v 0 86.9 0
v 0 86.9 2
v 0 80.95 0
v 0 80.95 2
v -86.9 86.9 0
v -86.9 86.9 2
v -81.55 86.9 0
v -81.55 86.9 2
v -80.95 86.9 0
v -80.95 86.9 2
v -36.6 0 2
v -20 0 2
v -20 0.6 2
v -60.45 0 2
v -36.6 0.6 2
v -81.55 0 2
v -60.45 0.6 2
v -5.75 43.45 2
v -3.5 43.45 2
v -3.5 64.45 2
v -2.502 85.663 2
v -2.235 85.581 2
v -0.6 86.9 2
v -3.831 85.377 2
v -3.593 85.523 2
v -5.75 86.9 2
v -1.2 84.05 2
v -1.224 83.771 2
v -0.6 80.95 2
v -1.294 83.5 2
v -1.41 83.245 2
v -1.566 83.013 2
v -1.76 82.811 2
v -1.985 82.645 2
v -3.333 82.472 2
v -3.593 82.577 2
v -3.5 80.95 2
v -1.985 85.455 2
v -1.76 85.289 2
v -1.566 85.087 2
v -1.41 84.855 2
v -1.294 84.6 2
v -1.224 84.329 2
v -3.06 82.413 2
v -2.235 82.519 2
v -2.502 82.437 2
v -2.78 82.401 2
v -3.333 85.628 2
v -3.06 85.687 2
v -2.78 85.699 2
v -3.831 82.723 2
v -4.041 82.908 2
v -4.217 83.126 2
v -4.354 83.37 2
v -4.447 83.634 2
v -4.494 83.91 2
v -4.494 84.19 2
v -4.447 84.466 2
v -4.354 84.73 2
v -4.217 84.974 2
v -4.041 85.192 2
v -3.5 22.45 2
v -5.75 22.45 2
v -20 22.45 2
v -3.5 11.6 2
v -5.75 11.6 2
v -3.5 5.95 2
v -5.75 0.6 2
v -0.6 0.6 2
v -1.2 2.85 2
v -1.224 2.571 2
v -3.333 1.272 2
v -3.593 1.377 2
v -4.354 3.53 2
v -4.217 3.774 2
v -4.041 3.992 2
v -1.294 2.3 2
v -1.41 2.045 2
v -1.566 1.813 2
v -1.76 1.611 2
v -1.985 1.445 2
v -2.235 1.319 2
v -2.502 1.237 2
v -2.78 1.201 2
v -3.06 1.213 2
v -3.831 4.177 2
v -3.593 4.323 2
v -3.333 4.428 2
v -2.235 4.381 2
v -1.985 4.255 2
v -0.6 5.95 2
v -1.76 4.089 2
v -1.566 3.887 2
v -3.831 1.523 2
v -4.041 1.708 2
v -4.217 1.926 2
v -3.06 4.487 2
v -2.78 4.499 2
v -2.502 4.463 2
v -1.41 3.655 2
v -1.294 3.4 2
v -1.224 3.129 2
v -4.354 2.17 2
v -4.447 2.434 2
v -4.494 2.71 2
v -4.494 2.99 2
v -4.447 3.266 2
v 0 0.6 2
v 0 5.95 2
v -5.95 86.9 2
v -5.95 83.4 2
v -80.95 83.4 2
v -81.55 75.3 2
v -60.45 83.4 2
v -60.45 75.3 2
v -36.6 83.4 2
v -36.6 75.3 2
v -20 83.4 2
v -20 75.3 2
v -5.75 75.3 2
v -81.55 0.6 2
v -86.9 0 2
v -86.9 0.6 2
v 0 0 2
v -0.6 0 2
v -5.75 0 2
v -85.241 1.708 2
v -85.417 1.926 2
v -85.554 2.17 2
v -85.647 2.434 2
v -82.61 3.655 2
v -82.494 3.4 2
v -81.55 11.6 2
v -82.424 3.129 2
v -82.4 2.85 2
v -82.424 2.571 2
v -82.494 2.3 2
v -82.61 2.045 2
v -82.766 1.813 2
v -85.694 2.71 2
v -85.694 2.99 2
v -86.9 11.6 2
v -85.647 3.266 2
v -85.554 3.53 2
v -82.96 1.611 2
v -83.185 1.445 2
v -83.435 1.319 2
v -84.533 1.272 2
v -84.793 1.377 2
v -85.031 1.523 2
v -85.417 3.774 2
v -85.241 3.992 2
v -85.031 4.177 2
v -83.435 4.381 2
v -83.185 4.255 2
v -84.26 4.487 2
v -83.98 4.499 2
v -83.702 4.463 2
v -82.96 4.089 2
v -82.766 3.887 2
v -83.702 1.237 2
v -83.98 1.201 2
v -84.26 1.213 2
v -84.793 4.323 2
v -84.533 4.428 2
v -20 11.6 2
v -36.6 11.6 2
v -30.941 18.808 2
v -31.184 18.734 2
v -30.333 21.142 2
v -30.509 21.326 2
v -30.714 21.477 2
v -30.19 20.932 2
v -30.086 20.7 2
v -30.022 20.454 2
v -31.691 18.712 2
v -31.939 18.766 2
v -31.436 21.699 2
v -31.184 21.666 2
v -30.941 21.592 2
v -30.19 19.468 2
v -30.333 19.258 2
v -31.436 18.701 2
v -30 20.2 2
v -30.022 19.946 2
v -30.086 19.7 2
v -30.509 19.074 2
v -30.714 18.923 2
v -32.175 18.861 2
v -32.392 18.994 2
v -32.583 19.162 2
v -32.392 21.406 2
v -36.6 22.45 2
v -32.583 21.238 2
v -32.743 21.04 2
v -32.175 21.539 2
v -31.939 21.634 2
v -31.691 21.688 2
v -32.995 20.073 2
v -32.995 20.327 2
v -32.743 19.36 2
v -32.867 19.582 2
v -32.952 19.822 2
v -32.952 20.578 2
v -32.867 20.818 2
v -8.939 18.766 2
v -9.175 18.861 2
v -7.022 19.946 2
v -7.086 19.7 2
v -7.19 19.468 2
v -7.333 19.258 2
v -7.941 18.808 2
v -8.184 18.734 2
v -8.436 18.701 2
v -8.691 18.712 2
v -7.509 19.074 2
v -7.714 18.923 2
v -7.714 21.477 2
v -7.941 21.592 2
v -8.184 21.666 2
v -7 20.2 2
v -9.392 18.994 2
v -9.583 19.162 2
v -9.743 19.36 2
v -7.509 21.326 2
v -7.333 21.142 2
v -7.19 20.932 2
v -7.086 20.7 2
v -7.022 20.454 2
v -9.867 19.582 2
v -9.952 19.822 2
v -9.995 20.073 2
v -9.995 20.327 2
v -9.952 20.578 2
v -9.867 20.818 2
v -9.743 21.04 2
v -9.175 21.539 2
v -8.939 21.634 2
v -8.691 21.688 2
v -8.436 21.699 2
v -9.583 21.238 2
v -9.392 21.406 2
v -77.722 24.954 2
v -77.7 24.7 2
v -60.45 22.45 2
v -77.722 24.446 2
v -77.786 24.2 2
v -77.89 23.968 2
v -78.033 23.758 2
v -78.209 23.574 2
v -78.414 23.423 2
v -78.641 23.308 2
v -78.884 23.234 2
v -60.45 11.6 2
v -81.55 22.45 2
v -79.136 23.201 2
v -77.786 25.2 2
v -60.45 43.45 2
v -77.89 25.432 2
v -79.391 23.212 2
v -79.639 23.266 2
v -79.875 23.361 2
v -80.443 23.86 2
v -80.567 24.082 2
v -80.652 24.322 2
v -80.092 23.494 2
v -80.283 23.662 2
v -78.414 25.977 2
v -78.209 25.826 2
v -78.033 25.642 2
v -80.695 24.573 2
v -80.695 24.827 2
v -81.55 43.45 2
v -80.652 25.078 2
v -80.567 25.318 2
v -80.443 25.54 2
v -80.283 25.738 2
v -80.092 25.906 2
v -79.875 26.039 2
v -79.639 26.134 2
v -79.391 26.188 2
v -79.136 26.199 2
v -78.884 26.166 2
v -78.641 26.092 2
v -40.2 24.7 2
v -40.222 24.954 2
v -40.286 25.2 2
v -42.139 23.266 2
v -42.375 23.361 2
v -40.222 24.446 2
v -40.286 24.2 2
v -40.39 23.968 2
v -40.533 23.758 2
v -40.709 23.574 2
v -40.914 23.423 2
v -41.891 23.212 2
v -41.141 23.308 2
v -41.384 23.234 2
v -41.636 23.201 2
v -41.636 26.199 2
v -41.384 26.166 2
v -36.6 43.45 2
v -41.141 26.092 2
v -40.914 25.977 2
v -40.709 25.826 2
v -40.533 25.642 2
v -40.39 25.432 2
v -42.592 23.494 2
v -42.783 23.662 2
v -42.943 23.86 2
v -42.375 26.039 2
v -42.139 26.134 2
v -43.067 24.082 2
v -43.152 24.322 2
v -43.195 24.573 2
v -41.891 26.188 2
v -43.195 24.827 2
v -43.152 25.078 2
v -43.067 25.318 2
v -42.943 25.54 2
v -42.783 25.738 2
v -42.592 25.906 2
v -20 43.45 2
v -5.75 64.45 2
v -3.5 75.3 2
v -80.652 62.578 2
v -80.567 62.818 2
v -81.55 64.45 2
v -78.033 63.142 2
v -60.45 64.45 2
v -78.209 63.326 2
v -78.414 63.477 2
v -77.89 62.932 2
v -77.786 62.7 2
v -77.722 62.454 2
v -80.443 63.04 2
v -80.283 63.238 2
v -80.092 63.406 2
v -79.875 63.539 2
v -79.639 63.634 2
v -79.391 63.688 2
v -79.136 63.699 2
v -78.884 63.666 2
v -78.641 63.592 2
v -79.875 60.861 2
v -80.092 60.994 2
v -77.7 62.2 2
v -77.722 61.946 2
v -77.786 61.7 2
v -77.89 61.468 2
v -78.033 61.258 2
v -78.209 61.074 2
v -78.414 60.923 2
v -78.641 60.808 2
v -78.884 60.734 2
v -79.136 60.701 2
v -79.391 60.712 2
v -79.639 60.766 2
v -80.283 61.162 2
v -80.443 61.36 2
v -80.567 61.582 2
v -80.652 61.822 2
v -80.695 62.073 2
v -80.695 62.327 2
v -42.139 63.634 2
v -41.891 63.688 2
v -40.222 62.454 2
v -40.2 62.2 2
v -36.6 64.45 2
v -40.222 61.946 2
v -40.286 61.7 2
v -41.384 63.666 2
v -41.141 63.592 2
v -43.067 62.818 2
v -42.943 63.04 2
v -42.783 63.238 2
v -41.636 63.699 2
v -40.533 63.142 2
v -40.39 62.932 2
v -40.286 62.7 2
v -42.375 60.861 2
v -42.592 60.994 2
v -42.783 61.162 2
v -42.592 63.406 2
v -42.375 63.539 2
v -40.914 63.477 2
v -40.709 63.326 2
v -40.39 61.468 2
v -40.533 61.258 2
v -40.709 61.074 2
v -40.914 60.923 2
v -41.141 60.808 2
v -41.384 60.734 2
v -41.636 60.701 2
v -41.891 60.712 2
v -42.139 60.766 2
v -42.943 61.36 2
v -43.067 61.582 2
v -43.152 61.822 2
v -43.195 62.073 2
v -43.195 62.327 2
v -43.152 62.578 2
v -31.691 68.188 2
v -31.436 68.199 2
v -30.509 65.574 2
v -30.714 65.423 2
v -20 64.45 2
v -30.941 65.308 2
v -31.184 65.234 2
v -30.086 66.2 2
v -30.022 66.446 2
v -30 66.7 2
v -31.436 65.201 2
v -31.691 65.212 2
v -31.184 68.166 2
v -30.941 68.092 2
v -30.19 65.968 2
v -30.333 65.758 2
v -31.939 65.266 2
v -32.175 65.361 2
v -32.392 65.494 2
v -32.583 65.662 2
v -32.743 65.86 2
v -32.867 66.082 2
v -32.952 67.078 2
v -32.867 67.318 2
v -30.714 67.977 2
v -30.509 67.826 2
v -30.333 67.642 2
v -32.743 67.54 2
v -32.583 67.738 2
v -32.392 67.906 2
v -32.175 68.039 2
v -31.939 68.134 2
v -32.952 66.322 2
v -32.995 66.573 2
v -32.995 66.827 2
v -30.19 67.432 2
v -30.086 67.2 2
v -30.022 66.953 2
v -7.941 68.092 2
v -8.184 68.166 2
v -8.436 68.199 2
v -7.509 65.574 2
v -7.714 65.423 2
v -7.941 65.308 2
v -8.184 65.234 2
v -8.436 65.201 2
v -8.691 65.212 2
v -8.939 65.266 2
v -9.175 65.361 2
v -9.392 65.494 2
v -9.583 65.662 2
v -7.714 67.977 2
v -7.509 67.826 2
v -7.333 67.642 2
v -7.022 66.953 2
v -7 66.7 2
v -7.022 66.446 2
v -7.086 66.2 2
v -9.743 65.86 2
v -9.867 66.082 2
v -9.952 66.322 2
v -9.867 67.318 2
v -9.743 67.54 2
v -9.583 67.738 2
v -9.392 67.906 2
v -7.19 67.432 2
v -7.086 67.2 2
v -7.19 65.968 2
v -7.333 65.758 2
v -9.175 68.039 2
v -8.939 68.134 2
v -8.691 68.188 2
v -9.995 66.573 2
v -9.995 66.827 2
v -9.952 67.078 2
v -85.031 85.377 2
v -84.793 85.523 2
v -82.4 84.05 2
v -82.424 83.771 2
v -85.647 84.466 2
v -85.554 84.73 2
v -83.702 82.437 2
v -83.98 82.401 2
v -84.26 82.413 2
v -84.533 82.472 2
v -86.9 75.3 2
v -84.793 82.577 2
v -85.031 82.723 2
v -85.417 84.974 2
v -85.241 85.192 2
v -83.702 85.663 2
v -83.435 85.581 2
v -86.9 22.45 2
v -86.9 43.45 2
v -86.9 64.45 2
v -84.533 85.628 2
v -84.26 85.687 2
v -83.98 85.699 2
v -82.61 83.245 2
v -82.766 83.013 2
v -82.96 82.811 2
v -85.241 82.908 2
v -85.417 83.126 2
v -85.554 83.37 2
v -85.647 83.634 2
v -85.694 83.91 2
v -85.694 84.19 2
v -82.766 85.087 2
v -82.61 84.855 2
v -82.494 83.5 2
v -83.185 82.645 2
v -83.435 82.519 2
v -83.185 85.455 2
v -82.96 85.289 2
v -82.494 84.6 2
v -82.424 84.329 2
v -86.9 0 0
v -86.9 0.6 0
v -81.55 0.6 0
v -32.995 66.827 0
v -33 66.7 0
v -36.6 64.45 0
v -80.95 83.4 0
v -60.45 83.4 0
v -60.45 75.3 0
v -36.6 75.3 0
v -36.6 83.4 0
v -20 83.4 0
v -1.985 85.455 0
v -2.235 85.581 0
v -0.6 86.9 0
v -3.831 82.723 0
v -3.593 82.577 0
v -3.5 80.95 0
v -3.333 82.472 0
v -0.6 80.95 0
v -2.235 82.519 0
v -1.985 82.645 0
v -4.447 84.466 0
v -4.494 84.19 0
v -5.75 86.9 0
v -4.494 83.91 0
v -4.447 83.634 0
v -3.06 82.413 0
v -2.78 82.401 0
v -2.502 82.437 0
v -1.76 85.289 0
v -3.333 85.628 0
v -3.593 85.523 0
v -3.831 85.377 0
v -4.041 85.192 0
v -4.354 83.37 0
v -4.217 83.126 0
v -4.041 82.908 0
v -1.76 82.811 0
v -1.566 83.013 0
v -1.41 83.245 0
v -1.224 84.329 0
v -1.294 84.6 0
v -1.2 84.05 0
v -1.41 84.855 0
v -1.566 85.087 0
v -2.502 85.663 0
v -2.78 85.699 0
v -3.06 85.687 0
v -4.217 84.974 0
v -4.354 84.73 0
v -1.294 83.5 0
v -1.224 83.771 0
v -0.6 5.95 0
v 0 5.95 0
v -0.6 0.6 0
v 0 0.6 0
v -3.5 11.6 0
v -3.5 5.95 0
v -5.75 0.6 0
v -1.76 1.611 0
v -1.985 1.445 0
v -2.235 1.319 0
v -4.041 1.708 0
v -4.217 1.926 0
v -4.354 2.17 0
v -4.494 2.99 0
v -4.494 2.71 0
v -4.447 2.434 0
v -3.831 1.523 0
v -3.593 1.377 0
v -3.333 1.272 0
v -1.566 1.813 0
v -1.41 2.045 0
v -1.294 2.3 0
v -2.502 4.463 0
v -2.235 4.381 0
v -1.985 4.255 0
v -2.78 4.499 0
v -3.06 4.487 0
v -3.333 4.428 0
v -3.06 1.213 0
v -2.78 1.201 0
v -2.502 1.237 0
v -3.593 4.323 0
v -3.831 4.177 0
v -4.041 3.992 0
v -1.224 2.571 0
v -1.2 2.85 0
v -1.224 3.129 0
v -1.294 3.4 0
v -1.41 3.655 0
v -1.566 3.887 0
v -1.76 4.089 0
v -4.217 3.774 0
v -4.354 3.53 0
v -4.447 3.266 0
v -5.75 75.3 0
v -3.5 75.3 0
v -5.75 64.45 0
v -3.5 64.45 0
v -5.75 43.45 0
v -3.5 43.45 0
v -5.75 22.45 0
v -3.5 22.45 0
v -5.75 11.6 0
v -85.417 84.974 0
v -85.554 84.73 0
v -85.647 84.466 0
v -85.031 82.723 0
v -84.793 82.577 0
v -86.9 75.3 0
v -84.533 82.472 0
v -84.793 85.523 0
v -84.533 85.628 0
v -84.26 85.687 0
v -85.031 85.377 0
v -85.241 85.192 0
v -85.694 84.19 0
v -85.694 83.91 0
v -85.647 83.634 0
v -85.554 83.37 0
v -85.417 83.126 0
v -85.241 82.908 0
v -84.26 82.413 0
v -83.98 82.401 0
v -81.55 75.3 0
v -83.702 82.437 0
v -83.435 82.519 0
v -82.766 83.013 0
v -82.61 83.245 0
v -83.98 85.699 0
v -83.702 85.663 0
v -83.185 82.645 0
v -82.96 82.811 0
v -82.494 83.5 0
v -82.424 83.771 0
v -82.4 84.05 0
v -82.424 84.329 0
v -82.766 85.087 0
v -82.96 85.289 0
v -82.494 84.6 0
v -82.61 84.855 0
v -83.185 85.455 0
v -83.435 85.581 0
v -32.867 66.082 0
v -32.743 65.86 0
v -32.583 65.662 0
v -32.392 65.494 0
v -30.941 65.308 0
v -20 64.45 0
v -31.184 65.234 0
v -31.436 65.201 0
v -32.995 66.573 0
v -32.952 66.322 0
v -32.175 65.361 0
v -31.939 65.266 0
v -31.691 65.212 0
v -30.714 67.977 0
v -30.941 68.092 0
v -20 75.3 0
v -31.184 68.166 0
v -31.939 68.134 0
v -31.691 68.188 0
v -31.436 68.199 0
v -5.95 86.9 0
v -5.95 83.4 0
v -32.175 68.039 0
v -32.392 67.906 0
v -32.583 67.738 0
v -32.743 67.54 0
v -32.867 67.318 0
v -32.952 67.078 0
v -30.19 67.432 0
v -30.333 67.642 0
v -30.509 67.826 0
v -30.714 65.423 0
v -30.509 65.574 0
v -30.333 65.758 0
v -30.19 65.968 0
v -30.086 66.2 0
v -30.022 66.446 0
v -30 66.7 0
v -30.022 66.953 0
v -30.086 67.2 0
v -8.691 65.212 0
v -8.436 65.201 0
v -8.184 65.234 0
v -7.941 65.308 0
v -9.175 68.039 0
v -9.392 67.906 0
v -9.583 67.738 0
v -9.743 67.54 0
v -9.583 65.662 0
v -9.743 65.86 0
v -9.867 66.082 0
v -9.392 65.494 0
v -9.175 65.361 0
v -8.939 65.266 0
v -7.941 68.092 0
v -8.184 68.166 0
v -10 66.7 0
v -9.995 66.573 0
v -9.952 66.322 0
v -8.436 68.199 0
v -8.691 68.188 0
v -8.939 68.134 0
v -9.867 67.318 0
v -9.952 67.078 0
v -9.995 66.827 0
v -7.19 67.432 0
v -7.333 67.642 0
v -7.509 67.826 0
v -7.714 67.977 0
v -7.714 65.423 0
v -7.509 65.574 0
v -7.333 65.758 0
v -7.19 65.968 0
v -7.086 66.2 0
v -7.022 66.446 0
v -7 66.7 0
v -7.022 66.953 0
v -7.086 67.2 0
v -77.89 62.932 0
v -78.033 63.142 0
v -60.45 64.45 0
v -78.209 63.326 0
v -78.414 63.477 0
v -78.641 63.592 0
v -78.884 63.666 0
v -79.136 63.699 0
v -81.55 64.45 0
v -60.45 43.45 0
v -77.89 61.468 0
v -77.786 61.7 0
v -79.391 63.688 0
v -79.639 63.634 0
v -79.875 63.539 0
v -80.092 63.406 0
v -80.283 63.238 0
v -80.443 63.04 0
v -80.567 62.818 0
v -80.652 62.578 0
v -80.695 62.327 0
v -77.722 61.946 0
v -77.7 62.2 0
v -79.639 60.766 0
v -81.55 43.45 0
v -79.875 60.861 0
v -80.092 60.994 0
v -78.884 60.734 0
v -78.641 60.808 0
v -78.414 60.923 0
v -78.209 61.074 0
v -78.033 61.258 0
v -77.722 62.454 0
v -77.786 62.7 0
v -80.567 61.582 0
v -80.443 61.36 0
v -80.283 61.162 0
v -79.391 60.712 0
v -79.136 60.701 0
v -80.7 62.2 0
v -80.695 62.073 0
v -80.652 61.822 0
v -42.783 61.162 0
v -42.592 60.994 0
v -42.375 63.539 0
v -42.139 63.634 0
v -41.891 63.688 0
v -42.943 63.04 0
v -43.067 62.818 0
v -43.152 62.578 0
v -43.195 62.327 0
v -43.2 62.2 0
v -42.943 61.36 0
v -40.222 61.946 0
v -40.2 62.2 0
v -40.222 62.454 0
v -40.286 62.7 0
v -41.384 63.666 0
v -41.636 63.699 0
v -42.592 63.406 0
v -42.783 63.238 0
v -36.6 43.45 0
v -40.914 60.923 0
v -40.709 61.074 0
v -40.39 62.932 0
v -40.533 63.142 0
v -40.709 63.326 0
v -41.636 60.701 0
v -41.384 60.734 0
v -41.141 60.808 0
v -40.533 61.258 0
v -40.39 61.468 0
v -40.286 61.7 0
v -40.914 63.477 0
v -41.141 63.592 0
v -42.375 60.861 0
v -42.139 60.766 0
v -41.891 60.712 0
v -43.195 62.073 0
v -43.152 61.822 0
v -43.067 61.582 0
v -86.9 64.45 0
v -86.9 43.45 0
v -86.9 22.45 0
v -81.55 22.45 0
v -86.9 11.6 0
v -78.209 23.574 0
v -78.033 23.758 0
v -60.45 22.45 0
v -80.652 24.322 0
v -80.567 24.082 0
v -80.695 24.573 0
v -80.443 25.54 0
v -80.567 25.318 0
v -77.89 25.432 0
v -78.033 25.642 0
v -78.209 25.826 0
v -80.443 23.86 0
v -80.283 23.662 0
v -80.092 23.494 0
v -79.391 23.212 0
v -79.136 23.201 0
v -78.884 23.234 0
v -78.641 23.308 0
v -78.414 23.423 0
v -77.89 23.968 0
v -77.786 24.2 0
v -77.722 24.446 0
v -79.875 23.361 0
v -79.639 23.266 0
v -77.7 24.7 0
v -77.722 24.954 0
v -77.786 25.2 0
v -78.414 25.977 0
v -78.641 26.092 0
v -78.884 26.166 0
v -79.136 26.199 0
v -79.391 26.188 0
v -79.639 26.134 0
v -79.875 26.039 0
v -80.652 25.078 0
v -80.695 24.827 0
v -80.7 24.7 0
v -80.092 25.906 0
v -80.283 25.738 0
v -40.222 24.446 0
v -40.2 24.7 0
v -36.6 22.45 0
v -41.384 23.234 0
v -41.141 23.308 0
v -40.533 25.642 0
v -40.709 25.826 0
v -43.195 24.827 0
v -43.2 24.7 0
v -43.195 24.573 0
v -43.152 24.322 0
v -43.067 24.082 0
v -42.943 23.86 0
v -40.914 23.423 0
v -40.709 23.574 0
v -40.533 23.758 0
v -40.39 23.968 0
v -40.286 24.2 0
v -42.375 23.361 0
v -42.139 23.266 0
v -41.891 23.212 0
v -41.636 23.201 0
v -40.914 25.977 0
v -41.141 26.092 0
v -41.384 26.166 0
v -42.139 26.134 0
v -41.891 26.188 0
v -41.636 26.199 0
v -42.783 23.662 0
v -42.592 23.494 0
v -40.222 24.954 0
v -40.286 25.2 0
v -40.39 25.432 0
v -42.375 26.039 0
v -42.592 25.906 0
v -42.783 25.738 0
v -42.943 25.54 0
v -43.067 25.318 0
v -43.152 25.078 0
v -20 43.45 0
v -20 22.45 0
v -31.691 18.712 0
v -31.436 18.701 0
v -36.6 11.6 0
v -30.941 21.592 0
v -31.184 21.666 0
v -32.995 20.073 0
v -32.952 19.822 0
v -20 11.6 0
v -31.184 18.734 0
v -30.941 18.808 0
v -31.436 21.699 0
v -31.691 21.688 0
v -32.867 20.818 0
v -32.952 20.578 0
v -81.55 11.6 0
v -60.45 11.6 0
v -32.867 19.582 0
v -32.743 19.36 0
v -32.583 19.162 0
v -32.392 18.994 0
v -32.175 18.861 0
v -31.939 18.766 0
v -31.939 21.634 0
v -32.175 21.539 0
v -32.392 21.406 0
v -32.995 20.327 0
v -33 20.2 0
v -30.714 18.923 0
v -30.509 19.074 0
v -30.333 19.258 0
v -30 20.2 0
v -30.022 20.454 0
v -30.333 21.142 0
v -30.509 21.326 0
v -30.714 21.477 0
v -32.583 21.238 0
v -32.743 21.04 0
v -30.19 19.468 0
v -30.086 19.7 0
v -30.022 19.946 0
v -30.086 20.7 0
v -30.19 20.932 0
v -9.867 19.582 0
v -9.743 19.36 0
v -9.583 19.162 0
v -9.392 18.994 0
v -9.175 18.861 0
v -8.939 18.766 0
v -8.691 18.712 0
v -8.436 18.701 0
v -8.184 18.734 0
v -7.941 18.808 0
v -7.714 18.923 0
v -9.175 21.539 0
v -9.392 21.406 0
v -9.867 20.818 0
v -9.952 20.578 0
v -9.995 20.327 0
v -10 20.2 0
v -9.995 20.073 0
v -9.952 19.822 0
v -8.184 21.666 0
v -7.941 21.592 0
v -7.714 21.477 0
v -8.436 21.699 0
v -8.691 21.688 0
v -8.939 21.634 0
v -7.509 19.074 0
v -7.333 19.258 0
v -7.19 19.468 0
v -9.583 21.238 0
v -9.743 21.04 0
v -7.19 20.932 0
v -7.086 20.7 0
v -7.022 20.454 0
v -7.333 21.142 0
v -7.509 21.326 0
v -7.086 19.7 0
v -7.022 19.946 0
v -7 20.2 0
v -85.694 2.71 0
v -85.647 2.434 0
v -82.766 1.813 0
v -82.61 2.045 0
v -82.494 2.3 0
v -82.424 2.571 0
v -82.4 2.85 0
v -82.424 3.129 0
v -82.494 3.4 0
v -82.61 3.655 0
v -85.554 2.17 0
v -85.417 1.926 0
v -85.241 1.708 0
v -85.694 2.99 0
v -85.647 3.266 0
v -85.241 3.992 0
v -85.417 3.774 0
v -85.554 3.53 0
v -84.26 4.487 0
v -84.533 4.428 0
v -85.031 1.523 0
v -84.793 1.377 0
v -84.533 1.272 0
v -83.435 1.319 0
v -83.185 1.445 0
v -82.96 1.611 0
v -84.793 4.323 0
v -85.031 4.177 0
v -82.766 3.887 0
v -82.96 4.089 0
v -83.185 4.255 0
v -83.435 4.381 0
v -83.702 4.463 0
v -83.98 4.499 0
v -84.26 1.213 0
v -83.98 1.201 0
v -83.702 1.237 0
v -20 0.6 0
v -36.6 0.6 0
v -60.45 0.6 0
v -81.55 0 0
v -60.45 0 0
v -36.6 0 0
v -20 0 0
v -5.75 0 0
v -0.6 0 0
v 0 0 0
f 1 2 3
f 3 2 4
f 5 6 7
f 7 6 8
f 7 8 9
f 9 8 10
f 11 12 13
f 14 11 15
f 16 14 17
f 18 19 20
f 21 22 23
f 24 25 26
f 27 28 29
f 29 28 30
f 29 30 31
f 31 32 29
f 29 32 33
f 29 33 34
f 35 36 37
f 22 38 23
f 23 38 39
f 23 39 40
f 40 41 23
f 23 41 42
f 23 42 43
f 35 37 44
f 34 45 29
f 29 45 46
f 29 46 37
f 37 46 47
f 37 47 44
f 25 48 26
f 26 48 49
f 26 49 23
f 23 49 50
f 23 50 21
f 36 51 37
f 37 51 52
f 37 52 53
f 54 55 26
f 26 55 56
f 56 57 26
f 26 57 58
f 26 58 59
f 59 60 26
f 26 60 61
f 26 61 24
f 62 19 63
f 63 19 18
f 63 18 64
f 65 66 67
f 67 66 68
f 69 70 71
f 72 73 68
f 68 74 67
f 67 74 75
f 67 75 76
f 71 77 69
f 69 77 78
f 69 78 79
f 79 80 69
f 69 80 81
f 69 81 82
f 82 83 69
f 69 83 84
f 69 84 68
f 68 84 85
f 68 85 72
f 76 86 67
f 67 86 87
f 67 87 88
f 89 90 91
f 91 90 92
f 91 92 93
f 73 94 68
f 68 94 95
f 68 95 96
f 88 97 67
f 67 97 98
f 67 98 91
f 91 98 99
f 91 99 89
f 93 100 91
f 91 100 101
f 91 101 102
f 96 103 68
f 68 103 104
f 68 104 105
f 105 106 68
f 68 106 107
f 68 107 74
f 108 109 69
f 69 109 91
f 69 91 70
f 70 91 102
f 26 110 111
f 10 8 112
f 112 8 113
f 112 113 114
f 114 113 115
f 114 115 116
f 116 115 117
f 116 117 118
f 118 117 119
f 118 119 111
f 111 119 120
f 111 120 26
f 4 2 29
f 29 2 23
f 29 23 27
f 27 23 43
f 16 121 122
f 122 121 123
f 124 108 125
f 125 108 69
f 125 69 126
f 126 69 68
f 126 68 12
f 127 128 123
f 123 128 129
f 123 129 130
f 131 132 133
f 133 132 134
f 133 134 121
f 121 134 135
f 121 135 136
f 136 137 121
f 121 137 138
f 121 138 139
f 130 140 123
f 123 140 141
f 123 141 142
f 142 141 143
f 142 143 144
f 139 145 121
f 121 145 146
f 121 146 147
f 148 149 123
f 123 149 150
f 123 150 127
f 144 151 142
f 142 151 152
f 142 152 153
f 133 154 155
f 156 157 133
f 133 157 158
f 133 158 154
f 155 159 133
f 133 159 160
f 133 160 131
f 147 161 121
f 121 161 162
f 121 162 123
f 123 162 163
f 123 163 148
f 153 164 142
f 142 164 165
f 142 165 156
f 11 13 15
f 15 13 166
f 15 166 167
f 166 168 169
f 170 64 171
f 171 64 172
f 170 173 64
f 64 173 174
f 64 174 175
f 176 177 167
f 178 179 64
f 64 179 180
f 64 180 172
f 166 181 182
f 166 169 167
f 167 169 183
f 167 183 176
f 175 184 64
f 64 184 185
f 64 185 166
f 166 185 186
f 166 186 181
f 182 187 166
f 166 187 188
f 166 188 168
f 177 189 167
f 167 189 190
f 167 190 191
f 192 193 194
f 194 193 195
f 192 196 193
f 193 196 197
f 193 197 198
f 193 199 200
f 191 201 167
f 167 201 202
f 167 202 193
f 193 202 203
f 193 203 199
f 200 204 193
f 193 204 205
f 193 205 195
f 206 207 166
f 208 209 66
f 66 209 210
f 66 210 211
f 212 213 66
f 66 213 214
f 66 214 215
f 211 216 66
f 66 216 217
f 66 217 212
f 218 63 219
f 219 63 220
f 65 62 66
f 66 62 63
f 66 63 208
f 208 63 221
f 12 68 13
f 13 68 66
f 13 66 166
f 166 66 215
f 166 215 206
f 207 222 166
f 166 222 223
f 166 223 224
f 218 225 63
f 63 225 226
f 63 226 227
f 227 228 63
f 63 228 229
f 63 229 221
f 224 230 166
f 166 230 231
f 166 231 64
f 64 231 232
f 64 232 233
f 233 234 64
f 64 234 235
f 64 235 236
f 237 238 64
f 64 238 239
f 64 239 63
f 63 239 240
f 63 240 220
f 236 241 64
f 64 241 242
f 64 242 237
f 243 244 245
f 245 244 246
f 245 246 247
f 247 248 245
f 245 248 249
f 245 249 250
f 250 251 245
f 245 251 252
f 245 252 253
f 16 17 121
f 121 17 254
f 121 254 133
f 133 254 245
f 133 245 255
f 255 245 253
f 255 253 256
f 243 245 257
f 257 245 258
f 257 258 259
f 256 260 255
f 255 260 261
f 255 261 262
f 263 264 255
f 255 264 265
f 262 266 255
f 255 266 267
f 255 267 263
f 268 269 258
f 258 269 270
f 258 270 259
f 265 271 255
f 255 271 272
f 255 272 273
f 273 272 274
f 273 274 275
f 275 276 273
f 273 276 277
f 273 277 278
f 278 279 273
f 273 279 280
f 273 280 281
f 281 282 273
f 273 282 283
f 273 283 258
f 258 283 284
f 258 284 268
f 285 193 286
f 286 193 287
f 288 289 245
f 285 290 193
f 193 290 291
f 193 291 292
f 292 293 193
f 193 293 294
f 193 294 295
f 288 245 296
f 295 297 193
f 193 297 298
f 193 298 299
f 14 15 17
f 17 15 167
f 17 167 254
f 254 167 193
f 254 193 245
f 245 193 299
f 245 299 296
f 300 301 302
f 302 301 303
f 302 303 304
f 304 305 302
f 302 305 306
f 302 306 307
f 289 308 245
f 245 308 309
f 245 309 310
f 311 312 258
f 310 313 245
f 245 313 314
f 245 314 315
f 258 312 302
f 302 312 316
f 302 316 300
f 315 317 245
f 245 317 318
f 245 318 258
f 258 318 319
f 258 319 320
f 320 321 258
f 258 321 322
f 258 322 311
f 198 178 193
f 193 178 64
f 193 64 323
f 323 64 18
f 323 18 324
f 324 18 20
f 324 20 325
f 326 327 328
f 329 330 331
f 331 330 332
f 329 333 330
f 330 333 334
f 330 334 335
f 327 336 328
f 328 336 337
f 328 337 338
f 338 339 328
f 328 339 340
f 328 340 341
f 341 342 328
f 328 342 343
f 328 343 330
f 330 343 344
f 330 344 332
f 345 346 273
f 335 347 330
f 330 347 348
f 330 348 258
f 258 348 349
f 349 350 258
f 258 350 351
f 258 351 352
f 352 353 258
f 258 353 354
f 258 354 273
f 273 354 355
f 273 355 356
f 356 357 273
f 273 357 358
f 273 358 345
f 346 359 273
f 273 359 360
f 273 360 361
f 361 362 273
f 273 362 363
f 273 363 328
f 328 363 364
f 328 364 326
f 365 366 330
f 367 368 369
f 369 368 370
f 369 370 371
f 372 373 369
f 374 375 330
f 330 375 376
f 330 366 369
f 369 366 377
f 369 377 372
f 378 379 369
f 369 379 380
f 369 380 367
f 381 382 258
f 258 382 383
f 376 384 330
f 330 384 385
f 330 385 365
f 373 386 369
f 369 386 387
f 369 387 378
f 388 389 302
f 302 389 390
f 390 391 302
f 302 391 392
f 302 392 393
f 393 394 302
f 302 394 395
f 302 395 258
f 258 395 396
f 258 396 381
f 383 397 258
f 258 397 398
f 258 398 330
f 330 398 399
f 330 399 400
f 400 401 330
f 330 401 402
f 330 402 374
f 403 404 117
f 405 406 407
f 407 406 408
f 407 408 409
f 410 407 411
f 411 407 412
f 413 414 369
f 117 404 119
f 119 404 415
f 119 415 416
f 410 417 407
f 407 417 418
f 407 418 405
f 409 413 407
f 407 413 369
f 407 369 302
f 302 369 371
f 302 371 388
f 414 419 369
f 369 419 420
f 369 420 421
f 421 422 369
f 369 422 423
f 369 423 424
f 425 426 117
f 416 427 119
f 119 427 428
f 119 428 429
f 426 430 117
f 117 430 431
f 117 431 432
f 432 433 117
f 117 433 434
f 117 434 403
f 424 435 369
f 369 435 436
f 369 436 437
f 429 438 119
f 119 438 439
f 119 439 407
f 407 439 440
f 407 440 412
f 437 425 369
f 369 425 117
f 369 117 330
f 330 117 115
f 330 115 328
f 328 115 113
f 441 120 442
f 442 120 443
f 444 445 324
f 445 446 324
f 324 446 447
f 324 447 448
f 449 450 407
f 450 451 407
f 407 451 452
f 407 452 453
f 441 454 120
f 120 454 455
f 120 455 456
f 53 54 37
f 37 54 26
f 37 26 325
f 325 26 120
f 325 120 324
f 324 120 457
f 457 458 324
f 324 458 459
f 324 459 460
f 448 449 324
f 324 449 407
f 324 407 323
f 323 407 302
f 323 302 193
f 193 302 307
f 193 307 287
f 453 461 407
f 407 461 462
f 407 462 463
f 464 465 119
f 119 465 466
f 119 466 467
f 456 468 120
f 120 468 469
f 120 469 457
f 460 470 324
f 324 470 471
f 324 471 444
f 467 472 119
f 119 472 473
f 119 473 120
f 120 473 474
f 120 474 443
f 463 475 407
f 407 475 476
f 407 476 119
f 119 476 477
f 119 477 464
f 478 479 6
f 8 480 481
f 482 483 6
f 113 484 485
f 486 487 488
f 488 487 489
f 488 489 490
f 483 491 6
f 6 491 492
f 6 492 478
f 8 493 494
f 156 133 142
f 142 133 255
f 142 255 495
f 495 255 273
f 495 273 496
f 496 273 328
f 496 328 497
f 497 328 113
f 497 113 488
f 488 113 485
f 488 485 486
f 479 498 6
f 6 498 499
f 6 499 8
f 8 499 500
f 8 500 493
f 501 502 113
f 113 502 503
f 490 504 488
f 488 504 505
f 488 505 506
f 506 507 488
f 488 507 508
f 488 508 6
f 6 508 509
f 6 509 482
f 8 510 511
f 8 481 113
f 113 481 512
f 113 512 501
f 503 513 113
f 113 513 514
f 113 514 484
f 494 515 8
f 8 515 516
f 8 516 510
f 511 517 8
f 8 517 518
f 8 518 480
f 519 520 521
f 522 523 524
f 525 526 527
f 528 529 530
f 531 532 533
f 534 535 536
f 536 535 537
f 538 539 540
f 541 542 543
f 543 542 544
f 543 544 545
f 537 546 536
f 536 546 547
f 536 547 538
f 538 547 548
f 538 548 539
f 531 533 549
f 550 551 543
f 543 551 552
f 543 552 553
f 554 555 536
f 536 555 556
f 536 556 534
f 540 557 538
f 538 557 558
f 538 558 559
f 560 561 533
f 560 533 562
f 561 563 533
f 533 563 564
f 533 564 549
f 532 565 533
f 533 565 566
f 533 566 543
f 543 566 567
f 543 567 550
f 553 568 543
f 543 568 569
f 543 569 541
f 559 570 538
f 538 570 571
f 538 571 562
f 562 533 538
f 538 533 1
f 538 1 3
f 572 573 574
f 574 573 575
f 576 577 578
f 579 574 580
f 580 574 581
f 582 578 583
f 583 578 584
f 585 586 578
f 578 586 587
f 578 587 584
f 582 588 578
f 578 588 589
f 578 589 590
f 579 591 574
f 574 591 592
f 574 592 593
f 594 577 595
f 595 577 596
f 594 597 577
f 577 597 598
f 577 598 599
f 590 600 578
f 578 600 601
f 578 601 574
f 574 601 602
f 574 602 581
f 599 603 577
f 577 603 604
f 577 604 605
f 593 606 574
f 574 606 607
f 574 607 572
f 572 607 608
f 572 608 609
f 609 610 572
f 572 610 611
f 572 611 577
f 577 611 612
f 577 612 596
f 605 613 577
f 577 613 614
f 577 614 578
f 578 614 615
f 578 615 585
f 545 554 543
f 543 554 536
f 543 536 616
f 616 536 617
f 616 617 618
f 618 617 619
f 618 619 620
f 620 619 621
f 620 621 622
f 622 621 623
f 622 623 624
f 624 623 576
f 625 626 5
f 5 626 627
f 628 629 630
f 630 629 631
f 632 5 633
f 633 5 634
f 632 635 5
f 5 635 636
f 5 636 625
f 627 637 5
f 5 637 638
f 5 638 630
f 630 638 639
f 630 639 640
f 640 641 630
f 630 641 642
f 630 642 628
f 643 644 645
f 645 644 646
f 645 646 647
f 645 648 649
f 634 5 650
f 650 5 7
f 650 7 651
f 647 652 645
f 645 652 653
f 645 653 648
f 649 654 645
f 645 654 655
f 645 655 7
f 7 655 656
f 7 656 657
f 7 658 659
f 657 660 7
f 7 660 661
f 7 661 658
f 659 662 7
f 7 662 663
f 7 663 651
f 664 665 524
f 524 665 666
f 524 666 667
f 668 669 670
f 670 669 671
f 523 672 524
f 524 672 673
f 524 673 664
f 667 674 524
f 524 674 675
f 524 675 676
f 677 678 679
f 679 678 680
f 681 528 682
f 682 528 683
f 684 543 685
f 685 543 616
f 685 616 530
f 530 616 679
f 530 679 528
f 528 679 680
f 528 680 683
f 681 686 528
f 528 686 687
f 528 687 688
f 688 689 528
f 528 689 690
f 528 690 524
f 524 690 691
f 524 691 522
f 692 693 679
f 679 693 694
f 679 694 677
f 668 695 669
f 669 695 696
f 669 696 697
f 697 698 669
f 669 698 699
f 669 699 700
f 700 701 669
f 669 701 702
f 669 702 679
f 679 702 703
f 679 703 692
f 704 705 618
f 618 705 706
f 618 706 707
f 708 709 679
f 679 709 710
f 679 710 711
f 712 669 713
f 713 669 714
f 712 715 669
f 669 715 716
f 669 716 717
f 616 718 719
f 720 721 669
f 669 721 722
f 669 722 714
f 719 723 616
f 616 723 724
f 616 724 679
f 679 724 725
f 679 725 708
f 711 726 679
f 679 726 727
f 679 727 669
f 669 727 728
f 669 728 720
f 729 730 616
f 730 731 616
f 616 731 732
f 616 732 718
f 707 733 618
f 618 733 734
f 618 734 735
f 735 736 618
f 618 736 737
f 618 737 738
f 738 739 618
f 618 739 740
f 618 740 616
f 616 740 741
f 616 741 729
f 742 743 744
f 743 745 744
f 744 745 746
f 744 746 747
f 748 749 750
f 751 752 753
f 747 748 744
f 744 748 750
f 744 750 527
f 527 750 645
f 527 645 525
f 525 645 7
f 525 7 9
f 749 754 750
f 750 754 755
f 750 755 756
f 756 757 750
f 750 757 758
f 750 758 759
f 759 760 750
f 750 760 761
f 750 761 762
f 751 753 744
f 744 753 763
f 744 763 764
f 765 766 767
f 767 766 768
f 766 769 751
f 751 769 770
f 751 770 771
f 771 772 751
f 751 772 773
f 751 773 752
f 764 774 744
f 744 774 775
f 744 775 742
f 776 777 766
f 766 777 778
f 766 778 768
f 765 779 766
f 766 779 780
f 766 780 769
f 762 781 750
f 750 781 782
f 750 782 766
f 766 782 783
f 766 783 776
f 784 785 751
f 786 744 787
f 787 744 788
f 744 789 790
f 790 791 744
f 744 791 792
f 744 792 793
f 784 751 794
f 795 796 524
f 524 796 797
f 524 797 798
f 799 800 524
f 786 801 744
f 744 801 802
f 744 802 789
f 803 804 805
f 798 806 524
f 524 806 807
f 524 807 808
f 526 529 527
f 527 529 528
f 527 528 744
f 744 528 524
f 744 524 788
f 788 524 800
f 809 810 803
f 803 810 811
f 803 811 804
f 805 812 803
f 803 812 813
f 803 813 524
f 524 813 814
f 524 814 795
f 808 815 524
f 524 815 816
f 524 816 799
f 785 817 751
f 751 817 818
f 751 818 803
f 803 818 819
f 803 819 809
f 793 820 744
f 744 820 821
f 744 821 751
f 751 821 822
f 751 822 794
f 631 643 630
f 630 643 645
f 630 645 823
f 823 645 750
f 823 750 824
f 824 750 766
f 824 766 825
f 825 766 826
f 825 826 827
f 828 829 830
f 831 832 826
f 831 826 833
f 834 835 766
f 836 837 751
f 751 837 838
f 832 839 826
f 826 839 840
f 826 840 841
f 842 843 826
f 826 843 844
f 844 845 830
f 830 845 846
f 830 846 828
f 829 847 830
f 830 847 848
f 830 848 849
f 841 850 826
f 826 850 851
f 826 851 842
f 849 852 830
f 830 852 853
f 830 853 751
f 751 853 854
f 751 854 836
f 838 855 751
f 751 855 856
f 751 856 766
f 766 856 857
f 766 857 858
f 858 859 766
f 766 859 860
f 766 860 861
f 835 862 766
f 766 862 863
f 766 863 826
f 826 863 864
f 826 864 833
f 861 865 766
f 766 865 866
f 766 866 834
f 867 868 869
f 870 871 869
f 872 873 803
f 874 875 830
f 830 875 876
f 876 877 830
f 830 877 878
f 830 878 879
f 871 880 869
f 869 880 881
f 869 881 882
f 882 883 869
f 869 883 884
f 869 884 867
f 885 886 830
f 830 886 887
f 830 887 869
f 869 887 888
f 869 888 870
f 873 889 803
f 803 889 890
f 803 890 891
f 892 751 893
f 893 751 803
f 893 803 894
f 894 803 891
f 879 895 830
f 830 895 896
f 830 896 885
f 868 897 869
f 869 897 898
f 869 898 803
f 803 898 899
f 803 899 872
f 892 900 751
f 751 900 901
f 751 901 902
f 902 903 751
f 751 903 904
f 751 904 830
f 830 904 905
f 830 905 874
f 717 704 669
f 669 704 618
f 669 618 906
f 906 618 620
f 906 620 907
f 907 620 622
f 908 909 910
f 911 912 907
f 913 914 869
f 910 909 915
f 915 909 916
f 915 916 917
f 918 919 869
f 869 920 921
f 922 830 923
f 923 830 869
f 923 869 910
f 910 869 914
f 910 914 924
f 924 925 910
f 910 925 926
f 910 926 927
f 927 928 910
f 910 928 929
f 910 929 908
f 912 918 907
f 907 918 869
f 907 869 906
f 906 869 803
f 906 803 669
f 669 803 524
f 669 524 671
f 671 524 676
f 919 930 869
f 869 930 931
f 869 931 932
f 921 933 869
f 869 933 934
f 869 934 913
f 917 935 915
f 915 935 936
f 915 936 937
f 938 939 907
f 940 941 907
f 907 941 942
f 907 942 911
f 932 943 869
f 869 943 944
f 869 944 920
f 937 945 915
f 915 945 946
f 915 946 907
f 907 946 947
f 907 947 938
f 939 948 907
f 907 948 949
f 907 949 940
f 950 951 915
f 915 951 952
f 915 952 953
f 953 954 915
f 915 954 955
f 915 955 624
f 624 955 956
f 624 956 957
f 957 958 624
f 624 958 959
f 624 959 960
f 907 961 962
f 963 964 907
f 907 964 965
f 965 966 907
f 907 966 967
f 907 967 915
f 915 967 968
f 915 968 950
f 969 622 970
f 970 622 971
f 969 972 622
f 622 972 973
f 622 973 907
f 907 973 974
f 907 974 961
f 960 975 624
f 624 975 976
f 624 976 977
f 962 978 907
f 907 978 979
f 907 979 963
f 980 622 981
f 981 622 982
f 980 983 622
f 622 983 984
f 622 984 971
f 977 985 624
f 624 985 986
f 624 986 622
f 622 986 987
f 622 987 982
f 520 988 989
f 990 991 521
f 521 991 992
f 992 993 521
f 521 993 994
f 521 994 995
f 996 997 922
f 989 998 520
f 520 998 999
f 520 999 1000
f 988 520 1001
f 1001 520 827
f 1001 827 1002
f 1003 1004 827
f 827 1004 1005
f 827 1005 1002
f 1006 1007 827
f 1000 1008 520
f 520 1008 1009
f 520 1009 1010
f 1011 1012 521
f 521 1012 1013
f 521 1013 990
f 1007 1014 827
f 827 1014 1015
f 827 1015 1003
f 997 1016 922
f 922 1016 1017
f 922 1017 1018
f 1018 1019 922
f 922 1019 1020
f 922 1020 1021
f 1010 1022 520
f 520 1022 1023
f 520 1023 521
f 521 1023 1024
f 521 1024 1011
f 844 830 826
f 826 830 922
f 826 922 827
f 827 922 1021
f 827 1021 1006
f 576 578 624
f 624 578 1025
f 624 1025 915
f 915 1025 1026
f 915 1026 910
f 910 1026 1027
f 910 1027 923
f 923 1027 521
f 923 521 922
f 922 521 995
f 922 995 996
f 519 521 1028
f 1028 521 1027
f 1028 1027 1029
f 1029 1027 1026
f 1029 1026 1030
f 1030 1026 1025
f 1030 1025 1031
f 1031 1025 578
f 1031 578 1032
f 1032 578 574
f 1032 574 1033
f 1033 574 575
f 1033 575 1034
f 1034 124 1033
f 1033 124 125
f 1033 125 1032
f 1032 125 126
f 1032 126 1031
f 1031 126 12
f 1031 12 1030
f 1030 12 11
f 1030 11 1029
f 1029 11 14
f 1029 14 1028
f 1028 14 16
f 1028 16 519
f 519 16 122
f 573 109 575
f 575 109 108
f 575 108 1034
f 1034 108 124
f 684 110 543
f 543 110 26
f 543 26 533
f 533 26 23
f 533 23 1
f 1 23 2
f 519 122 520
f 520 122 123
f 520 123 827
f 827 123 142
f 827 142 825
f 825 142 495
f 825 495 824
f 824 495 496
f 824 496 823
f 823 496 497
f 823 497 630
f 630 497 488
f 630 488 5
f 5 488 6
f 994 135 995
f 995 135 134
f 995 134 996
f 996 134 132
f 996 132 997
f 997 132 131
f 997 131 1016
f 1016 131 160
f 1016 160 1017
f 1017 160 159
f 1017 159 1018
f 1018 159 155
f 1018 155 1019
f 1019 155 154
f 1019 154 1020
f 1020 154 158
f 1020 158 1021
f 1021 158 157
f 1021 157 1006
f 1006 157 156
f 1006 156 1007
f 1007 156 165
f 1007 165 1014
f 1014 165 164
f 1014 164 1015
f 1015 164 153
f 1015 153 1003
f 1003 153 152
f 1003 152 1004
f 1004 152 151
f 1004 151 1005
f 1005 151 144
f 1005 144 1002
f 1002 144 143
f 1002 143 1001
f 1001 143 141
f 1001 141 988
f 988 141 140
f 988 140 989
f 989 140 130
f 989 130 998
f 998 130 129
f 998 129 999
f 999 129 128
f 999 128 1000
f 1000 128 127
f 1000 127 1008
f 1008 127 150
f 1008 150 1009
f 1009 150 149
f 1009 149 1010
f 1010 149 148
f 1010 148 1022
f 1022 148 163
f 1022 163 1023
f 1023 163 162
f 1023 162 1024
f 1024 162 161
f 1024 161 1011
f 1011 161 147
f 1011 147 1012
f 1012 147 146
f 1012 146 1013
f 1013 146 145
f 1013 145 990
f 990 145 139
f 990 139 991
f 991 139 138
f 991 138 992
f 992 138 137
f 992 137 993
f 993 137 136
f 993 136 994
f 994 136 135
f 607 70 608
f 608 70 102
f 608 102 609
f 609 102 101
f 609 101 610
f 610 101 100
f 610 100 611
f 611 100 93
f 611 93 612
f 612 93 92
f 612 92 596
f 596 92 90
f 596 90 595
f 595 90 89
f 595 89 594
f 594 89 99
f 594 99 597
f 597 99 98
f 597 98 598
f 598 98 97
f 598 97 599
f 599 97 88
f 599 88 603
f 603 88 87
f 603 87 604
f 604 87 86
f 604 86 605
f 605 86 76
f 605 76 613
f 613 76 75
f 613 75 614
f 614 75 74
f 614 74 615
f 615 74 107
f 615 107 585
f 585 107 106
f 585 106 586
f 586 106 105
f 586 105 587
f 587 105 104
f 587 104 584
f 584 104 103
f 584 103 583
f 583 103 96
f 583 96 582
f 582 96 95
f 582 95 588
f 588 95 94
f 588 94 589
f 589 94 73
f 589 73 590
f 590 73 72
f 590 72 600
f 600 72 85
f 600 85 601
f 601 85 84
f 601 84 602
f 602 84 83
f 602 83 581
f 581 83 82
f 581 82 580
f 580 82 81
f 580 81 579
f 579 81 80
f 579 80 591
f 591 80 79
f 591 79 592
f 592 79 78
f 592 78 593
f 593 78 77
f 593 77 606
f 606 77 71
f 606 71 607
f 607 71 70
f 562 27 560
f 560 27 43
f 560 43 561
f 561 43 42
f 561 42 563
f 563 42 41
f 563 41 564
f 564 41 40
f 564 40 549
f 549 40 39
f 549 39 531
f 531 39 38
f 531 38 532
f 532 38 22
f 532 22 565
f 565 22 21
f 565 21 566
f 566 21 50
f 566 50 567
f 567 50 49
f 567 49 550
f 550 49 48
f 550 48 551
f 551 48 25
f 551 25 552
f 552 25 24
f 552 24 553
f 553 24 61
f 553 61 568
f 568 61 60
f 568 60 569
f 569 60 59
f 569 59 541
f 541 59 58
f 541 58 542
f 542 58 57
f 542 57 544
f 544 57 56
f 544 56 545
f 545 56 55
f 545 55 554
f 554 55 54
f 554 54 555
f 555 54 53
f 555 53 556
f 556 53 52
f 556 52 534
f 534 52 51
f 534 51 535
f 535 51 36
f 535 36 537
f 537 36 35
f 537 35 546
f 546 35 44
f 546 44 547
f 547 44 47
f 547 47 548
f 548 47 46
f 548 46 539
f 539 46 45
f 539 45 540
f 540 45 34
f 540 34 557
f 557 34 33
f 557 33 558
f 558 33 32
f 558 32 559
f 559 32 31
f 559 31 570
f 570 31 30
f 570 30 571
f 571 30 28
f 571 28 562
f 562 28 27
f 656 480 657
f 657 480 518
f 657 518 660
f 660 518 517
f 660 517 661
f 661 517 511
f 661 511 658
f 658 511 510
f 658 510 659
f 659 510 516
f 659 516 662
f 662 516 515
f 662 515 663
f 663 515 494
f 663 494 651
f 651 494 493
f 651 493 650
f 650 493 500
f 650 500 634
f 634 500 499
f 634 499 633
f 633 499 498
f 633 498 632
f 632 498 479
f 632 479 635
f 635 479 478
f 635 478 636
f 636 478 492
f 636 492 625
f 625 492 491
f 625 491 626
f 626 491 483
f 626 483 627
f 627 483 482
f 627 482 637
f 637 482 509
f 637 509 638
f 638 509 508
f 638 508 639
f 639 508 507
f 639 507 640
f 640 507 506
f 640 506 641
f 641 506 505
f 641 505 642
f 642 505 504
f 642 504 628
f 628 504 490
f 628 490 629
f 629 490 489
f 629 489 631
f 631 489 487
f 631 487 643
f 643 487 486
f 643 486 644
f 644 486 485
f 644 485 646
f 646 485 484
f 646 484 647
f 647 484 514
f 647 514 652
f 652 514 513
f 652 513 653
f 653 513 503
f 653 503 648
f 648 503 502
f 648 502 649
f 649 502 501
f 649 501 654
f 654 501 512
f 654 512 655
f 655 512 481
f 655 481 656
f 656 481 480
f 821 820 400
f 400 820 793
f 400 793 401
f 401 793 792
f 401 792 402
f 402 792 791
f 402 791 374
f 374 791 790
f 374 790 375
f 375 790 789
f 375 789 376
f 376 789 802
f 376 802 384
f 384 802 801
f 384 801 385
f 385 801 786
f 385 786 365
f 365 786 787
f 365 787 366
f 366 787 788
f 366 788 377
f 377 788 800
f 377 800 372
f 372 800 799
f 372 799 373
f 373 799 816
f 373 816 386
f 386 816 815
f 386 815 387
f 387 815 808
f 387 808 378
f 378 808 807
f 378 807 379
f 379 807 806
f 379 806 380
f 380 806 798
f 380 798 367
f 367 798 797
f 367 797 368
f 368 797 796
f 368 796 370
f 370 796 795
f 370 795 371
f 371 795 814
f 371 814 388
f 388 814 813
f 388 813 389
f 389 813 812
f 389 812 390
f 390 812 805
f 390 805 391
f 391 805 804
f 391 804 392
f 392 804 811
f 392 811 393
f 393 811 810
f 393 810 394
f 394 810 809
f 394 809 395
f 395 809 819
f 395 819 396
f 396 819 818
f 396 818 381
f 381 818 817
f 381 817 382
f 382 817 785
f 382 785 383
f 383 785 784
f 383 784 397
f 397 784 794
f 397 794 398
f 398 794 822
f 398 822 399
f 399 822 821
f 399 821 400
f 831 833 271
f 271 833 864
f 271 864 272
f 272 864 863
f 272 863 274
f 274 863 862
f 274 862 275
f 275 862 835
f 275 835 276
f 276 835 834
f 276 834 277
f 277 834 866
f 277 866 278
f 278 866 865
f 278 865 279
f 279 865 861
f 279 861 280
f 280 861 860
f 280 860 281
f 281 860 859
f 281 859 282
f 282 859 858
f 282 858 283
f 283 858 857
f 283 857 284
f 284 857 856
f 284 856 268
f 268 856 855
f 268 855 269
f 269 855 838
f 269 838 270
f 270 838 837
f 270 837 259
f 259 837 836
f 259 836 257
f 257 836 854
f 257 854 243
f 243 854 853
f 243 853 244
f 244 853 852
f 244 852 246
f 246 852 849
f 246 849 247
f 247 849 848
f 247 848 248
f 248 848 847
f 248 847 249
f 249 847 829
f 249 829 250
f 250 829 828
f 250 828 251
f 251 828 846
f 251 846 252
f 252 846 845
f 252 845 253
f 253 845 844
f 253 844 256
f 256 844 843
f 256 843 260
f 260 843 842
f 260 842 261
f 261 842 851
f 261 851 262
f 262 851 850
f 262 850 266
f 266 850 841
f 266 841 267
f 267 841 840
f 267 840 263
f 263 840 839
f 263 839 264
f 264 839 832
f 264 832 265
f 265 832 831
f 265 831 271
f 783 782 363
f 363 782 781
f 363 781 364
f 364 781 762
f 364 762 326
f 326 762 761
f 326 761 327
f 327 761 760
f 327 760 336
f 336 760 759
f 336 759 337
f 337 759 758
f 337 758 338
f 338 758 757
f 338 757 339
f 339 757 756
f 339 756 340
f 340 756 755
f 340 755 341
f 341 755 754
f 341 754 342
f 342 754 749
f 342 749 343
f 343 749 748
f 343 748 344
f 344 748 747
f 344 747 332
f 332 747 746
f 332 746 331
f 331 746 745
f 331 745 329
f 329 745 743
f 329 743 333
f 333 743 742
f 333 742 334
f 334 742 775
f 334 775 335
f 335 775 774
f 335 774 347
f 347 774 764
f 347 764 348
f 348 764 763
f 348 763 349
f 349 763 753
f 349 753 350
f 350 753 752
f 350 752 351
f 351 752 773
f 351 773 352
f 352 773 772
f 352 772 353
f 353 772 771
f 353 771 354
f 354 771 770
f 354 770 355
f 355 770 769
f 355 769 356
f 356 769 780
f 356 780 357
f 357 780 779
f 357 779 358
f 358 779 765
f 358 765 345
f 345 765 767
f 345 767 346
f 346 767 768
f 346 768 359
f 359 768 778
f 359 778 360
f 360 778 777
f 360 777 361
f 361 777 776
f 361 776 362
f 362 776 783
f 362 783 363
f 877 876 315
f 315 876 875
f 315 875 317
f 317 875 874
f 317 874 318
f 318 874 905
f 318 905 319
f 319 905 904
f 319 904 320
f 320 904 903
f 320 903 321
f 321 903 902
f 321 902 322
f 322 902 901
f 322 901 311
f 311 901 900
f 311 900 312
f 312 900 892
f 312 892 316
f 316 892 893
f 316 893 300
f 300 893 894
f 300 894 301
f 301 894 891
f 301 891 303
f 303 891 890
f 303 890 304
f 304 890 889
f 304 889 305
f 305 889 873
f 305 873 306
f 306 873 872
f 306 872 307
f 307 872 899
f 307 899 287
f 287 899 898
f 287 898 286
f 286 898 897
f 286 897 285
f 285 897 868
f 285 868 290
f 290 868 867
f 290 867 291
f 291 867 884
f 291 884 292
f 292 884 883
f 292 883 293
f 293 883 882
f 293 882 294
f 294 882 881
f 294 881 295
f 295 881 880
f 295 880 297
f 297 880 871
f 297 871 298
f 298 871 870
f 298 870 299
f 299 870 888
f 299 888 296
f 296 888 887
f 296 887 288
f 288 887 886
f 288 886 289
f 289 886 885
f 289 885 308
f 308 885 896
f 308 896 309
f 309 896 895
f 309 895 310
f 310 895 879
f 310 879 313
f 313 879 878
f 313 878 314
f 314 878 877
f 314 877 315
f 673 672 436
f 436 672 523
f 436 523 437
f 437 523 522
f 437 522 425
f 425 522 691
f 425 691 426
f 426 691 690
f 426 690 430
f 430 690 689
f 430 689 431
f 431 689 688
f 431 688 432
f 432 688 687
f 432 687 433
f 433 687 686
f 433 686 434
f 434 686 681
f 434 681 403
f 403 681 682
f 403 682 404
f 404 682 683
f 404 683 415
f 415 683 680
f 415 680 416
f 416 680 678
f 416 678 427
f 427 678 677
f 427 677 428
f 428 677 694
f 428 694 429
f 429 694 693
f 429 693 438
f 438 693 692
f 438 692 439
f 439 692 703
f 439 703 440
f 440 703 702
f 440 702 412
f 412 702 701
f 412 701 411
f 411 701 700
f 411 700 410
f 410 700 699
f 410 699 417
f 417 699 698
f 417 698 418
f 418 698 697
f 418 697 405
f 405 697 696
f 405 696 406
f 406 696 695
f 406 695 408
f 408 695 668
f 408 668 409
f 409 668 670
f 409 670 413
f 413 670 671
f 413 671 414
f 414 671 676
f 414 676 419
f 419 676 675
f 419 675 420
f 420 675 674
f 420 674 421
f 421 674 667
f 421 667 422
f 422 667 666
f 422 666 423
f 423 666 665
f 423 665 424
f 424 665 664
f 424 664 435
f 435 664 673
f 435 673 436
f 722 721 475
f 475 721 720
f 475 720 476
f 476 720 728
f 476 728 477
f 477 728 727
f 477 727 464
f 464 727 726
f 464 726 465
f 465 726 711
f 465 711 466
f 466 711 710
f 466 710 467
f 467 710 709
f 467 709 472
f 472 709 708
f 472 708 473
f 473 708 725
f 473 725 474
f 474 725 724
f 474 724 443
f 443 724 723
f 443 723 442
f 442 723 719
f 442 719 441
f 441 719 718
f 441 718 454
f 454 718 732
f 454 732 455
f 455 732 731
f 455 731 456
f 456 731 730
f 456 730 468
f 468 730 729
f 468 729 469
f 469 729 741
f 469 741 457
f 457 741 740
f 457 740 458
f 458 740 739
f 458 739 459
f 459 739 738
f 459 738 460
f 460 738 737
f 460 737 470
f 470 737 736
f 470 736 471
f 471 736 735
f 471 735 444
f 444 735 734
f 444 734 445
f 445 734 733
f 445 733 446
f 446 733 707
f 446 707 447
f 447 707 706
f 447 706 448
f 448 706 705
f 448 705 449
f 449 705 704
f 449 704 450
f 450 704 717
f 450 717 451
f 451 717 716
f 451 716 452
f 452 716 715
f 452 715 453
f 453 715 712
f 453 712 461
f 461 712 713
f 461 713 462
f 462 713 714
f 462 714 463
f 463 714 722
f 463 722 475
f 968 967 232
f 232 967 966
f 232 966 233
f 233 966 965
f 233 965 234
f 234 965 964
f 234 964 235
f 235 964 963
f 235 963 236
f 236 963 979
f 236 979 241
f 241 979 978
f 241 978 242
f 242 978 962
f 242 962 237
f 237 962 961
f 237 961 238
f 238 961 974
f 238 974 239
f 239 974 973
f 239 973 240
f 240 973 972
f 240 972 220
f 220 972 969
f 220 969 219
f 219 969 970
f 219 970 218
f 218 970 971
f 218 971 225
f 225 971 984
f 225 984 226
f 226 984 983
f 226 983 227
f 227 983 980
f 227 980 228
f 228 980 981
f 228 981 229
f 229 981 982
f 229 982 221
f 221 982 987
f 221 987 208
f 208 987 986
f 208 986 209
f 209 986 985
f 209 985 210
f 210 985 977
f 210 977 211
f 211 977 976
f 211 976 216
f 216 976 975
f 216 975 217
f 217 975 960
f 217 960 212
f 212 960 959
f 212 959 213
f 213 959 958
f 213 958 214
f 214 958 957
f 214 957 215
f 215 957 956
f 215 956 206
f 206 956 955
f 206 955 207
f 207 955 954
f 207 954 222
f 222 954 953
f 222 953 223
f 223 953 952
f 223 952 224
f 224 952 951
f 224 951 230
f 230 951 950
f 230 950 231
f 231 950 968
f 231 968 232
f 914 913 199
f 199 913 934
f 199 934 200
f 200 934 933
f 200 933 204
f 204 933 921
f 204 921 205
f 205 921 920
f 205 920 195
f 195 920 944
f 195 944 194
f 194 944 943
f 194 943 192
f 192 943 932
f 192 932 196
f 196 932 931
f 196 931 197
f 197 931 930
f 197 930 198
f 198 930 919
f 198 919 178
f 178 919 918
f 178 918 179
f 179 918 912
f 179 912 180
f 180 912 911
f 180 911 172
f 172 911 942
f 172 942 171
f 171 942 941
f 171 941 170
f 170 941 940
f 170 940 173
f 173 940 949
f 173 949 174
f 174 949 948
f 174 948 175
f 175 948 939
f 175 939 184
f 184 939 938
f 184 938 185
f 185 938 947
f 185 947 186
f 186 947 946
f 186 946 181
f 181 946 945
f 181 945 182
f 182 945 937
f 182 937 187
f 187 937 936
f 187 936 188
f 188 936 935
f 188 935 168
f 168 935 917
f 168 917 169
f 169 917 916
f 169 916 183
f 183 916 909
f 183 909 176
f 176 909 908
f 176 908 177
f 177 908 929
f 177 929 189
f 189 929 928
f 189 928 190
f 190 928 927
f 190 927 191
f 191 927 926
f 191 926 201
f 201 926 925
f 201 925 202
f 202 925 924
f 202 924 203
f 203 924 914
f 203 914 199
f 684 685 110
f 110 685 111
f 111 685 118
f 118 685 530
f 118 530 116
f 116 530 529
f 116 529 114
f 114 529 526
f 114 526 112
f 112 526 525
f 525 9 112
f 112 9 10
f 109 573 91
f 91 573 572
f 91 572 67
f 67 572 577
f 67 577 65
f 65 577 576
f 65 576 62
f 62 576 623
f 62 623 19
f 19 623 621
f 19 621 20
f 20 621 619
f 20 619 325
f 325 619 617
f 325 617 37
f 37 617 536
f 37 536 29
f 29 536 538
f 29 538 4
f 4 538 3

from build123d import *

# Parameters (mm, degrees)
SKETCH1_W           = 86.9
SKETCH1_H           = 86.9
BOSS_EXTRUDE1_DEPTH = 2
SKETCH2_R           = 1.65
CUT_EXTRUDE3_DEPTH  = 123.911431527
SKETCH3_R           = 1.5
CUT_EXTRUDE4_DEPTH  = 10
SKETCH4_R           = 1.5
CUT_EXTRUDE5_DEPTH  = 10
SKETCH5_W           = 3.5
SKETCH5_H           = 75
SKETCH5_W_2         = 75
SKETCH5_H_2         = 3.5
CUT_EXTRUDE6_DEPTH  = 123.911431527


with BuildPart() as part:
    # Sketch1 → Boss-Extrude1 (new body)
    with BuildSketch(Plane(origin=(0, 0, 0), x_dir=(0, 1, 0), z_dir=(0, 0, 1))):
        with Locations((43.45, 43.45)):
            Rectangle(SKETCH1_W, SKETCH1_H)
    extrude(amount=BOSS_EXTRUDE1_DEPTH)

    # Sketch2 → Cut-Extrude3 (cut, through all)
    with BuildSketch(Plane.XY.offset(2)):
        with Locations((-84.05, 2.85)):
            Circle(SKETCH2_R)
        with Locations((-2.85, 2.85)):
            Circle(SKETCH2_R)
        with Locations((-2.85, 84.05)):
            Circle(SKETCH2_R)
        with Locations((-84.05, 84.05)):
            Circle(SKETCH2_R)
    extrude(amount=-CUT_EXTRUDE3_DEPTH, mode=Mode.SUBTRACT)

    # Sketch3 → Cut-Extrude4 (cut)
    with BuildSketch(Plane.XY.offset(2)):
        with Locations((-79.2, 62.2)):
            Circle(SKETCH3_R)
        with Locations((-41.7, 62.2)):
            Circle(SKETCH3_R)
        with Locations((-41.7, 24.7)):
            Circle(SKETCH3_R)
        with Locations((-79.2, 24.7)):
            Circle(SKETCH3_R)
    extrude(amount=-CUT_EXTRUDE4_DEPTH, mode=Mode.SUBTRACT)

    # Sketch4 → Cut-Extrude5 (cut)
    with BuildSketch(Plane.XY.offset(2)):
        with Locations((-31.5, 66.7)):
            Circle(SKETCH4_R)
        with Locations((-8.5, 66.7)):
            Circle(SKETCH4_R)
        with Locations((-8.5, 20.2)):
            Circle(SKETCH4_R)
        with Locations((-31.5, 20.2)):
            Circle(SKETCH4_R)
    extrude(amount=-CUT_EXTRUDE5_DEPTH, mode=Mode.SUBTRACT)

    # Sketch5 → Cut-Extrude6 (cut, through all)
    with BuildSketch(Plane.XY.offset(2)):
        with Locations((-1.75, 43.45)):
            Rectangle(SKETCH5_W, SKETCH5_H)
        with Locations((-43.45, 85.15)):
            Rectangle(SKETCH5_W_2, SKETCH5_H_2)
    extrude(amount=-CUT_EXTRUDE6_DEPTH, mode=Mode.SUBTRACT)


solid = part.part
